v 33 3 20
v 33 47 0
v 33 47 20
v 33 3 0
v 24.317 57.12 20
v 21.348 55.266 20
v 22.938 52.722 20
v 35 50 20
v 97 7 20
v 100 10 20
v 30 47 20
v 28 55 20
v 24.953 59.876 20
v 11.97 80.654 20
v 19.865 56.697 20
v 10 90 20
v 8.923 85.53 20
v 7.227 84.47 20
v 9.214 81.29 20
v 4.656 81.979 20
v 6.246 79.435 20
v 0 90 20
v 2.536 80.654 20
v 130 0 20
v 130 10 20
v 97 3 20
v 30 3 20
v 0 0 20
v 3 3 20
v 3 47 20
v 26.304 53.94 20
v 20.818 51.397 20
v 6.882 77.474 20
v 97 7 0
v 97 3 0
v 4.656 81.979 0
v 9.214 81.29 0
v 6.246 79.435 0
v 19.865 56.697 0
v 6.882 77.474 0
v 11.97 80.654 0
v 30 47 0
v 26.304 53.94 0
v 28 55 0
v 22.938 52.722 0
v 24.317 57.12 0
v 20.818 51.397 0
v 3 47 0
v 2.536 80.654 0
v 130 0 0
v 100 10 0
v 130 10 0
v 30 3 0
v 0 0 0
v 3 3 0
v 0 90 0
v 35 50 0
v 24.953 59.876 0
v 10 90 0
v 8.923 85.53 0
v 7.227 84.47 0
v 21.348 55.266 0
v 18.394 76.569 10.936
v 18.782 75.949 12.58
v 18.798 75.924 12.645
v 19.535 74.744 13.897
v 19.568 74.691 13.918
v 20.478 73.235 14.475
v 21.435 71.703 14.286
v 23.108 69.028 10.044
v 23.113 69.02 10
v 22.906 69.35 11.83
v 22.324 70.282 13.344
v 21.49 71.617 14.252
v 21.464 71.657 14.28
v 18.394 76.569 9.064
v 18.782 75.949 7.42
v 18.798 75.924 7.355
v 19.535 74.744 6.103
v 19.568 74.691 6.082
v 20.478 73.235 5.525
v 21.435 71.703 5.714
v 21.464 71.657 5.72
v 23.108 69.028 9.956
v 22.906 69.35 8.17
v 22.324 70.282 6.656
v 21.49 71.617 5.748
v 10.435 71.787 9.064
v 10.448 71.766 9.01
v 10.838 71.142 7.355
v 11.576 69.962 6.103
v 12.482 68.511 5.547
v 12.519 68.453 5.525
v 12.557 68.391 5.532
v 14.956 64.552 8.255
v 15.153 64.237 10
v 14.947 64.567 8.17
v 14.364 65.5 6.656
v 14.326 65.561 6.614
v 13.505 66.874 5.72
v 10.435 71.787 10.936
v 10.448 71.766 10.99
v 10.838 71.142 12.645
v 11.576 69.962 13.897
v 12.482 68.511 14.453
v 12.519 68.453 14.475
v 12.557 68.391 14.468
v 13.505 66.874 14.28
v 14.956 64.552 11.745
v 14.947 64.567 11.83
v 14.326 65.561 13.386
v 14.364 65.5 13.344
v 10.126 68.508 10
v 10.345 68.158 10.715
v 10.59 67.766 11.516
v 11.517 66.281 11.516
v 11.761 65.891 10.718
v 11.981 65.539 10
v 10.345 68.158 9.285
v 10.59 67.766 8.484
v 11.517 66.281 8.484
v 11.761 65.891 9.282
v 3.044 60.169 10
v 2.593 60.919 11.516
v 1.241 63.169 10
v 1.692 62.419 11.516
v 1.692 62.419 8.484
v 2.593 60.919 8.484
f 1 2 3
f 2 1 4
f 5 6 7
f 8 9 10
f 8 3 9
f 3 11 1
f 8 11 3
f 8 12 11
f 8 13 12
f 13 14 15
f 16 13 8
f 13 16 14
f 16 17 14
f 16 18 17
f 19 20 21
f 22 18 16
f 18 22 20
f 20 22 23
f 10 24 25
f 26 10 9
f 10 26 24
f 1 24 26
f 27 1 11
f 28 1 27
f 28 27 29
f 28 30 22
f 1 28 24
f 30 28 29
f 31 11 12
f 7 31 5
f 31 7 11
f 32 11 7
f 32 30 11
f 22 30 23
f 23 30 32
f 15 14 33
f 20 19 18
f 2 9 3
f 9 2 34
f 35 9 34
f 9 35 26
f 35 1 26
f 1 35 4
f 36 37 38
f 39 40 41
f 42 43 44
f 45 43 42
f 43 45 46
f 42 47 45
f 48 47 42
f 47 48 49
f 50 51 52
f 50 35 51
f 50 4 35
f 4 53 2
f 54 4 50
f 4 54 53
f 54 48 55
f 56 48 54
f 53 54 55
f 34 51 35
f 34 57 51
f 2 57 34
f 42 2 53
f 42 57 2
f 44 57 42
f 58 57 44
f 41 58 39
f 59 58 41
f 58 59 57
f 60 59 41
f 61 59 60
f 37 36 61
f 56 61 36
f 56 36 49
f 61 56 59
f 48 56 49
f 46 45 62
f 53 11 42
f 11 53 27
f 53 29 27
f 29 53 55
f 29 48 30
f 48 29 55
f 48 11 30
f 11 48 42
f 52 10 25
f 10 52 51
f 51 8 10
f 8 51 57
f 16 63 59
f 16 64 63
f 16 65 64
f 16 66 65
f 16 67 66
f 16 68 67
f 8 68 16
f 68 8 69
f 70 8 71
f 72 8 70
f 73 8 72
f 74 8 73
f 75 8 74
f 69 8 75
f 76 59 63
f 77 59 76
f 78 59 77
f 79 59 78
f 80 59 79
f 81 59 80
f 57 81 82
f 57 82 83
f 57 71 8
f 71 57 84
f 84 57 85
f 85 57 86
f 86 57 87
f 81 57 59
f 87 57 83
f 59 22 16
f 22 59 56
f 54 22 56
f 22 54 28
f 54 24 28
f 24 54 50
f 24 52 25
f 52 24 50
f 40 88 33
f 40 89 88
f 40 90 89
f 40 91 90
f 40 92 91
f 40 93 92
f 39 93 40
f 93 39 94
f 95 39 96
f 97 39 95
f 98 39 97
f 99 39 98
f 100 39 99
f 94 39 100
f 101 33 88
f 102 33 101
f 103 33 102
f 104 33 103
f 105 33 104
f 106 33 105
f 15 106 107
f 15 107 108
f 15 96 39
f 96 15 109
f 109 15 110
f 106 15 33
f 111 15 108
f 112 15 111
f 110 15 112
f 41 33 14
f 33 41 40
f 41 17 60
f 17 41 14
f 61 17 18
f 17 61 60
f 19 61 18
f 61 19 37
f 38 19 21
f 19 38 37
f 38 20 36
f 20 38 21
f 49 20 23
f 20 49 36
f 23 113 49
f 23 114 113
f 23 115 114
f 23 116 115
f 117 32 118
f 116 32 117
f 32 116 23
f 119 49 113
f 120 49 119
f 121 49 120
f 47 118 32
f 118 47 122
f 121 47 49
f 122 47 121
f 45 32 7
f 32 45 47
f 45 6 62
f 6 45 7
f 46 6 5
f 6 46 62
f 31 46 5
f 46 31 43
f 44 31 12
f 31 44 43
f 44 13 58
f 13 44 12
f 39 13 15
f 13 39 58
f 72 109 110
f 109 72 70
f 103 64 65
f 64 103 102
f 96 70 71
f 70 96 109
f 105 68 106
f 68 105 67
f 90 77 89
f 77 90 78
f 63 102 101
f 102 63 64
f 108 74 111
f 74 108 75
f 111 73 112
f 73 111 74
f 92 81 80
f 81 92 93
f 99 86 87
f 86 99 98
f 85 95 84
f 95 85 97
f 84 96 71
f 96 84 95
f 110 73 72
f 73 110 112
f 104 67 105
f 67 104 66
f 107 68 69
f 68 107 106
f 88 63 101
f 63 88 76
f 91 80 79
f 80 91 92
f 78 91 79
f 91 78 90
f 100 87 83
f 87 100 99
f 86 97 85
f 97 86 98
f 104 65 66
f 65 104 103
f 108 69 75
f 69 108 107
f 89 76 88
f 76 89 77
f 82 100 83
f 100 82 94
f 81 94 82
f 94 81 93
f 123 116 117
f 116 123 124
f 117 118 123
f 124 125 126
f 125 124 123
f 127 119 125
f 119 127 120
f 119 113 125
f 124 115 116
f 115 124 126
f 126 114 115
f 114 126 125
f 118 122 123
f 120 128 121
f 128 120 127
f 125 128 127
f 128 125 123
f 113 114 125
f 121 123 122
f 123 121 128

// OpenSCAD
// file: din_utilities.scad
DIN_LENGTH = 36;
DIN_INNER_LENGTH = 24.5;
DIN_WIDTH = 8;
DIN_NUBBIN_WIDTH = 2.5;
DIN_NUBBIN_LENGTH = 3;
DIN_RAIL_WIDTH = 2;

function din_length() = DIN_LENGTH;
function din_width() = DIN_WIDTH;

din_wing_length = (DIN_LENGTH - DIN_INNER_LENGTH) / 2;
din_inner_width = DIN_WIDTH - DIN_RAIL_WIDTH;
din_path = [
    [0, 0],
    [0, DIN_RAIL_WIDTH],
    [din_wing_length - DIN_RAIL_WIDTH, DIN_RAIL_WIDTH],
    [din_wing_length - DIN_RAIL_WIDTH, DIN_WIDTH - DIN_NUBBIN_WIDTH],
    [din_wing_length - DIN_RAIL_WIDTH - DIN_NUBBIN_LENGTH, DIN_WIDTH - DIN_NUBBIN_WIDTH],
    [din_wing_length - DIN_RAIL_WIDTH - DIN_NUBBIN_LENGTH, DIN_WIDTH],
    [DIN_LENGTH - din_wing_length + DIN_RAIL_WIDTH + DIN_NUBBIN_LENGTH, DIN_WIDTH],
    [DIN_LENGTH - din_wing_length + DIN_RAIL_WIDTH + DIN_NUBBIN_LENGTH, DIN_WIDTH - DIN_NUBBIN_WIDTH],
    [DIN_LENGTH - din_wing_length + DIN_RAIL_WIDTH, DIN_WIDTH - DIN_NUBBIN_WIDTH],
    [DIN_LENGTH - din_wing_length + DIN_RAIL_WIDTH, DIN_RAIL_WIDTH],
    [DIN_LENGTH, DIN_RAIL_WIDTH],
    [DIN_LENGTH, 0],
    [DIN_LENGTH - din_wing_length, 0],
    [DIN_LENGTH - din_wing_length, din_inner_width],
    [din_wing_length, din_inner_width],
    [din_wing_length, 0]
];

function din_path() = din_path;

module din_modified_slot() {
    polygon(din_path());
}
/*
difference() {
    cube([40, 12 ,4]);
    
    translate([2, 2, -.01])
    linear_extrude(4 + .02)
    din_modified_slot();
}*/
din_modified_slot();
// main file
use <din_utilities.scad>

DEPTH = 20;

module base() {
    linear_extrude(DEPTH)
    polygon([
        [0, 0],
        [130, 0],
        [130, 10],
        [100, 10],
        [35, 50],
        [10, 90],
        [0, 90]
    ]);
}

module cutout() {
    linear_extrude(DEPTH)
    polygon([
        [33, 3],
        [97, 3],
        [97, 7],
        [33, 47]
    ]);
    
    linear_extrude(DEPTH)
    polygon([
        [3, 3],
        [30, 3],
        [30, 47],
        [3, 47]
    ]);
}

module screw_slot() {
    hole_size = 9;
    
    translate([21, 73, DEPTH / 2])
    rotate([90, 0, -59])
    cylinder(
        h = 10,
        d = hole_size
    );
}

module screw_hole() {
    hole_size = 3.5;

    translate([21, 73, DEPTH / 2])
    rotate([90, 0, -59])
    cylinder(
        h = 22,
        d = hole_size
    );
}

module rail() {
    linear_extrude(DEPTH + 1)
    translate([28, 55, 0])
    rotate([0, 0, 122])
    din_modified_slot();
}

difference() {
    base();
    cutout();
    rail();
    screw_slot();
    screw_hole();
}
